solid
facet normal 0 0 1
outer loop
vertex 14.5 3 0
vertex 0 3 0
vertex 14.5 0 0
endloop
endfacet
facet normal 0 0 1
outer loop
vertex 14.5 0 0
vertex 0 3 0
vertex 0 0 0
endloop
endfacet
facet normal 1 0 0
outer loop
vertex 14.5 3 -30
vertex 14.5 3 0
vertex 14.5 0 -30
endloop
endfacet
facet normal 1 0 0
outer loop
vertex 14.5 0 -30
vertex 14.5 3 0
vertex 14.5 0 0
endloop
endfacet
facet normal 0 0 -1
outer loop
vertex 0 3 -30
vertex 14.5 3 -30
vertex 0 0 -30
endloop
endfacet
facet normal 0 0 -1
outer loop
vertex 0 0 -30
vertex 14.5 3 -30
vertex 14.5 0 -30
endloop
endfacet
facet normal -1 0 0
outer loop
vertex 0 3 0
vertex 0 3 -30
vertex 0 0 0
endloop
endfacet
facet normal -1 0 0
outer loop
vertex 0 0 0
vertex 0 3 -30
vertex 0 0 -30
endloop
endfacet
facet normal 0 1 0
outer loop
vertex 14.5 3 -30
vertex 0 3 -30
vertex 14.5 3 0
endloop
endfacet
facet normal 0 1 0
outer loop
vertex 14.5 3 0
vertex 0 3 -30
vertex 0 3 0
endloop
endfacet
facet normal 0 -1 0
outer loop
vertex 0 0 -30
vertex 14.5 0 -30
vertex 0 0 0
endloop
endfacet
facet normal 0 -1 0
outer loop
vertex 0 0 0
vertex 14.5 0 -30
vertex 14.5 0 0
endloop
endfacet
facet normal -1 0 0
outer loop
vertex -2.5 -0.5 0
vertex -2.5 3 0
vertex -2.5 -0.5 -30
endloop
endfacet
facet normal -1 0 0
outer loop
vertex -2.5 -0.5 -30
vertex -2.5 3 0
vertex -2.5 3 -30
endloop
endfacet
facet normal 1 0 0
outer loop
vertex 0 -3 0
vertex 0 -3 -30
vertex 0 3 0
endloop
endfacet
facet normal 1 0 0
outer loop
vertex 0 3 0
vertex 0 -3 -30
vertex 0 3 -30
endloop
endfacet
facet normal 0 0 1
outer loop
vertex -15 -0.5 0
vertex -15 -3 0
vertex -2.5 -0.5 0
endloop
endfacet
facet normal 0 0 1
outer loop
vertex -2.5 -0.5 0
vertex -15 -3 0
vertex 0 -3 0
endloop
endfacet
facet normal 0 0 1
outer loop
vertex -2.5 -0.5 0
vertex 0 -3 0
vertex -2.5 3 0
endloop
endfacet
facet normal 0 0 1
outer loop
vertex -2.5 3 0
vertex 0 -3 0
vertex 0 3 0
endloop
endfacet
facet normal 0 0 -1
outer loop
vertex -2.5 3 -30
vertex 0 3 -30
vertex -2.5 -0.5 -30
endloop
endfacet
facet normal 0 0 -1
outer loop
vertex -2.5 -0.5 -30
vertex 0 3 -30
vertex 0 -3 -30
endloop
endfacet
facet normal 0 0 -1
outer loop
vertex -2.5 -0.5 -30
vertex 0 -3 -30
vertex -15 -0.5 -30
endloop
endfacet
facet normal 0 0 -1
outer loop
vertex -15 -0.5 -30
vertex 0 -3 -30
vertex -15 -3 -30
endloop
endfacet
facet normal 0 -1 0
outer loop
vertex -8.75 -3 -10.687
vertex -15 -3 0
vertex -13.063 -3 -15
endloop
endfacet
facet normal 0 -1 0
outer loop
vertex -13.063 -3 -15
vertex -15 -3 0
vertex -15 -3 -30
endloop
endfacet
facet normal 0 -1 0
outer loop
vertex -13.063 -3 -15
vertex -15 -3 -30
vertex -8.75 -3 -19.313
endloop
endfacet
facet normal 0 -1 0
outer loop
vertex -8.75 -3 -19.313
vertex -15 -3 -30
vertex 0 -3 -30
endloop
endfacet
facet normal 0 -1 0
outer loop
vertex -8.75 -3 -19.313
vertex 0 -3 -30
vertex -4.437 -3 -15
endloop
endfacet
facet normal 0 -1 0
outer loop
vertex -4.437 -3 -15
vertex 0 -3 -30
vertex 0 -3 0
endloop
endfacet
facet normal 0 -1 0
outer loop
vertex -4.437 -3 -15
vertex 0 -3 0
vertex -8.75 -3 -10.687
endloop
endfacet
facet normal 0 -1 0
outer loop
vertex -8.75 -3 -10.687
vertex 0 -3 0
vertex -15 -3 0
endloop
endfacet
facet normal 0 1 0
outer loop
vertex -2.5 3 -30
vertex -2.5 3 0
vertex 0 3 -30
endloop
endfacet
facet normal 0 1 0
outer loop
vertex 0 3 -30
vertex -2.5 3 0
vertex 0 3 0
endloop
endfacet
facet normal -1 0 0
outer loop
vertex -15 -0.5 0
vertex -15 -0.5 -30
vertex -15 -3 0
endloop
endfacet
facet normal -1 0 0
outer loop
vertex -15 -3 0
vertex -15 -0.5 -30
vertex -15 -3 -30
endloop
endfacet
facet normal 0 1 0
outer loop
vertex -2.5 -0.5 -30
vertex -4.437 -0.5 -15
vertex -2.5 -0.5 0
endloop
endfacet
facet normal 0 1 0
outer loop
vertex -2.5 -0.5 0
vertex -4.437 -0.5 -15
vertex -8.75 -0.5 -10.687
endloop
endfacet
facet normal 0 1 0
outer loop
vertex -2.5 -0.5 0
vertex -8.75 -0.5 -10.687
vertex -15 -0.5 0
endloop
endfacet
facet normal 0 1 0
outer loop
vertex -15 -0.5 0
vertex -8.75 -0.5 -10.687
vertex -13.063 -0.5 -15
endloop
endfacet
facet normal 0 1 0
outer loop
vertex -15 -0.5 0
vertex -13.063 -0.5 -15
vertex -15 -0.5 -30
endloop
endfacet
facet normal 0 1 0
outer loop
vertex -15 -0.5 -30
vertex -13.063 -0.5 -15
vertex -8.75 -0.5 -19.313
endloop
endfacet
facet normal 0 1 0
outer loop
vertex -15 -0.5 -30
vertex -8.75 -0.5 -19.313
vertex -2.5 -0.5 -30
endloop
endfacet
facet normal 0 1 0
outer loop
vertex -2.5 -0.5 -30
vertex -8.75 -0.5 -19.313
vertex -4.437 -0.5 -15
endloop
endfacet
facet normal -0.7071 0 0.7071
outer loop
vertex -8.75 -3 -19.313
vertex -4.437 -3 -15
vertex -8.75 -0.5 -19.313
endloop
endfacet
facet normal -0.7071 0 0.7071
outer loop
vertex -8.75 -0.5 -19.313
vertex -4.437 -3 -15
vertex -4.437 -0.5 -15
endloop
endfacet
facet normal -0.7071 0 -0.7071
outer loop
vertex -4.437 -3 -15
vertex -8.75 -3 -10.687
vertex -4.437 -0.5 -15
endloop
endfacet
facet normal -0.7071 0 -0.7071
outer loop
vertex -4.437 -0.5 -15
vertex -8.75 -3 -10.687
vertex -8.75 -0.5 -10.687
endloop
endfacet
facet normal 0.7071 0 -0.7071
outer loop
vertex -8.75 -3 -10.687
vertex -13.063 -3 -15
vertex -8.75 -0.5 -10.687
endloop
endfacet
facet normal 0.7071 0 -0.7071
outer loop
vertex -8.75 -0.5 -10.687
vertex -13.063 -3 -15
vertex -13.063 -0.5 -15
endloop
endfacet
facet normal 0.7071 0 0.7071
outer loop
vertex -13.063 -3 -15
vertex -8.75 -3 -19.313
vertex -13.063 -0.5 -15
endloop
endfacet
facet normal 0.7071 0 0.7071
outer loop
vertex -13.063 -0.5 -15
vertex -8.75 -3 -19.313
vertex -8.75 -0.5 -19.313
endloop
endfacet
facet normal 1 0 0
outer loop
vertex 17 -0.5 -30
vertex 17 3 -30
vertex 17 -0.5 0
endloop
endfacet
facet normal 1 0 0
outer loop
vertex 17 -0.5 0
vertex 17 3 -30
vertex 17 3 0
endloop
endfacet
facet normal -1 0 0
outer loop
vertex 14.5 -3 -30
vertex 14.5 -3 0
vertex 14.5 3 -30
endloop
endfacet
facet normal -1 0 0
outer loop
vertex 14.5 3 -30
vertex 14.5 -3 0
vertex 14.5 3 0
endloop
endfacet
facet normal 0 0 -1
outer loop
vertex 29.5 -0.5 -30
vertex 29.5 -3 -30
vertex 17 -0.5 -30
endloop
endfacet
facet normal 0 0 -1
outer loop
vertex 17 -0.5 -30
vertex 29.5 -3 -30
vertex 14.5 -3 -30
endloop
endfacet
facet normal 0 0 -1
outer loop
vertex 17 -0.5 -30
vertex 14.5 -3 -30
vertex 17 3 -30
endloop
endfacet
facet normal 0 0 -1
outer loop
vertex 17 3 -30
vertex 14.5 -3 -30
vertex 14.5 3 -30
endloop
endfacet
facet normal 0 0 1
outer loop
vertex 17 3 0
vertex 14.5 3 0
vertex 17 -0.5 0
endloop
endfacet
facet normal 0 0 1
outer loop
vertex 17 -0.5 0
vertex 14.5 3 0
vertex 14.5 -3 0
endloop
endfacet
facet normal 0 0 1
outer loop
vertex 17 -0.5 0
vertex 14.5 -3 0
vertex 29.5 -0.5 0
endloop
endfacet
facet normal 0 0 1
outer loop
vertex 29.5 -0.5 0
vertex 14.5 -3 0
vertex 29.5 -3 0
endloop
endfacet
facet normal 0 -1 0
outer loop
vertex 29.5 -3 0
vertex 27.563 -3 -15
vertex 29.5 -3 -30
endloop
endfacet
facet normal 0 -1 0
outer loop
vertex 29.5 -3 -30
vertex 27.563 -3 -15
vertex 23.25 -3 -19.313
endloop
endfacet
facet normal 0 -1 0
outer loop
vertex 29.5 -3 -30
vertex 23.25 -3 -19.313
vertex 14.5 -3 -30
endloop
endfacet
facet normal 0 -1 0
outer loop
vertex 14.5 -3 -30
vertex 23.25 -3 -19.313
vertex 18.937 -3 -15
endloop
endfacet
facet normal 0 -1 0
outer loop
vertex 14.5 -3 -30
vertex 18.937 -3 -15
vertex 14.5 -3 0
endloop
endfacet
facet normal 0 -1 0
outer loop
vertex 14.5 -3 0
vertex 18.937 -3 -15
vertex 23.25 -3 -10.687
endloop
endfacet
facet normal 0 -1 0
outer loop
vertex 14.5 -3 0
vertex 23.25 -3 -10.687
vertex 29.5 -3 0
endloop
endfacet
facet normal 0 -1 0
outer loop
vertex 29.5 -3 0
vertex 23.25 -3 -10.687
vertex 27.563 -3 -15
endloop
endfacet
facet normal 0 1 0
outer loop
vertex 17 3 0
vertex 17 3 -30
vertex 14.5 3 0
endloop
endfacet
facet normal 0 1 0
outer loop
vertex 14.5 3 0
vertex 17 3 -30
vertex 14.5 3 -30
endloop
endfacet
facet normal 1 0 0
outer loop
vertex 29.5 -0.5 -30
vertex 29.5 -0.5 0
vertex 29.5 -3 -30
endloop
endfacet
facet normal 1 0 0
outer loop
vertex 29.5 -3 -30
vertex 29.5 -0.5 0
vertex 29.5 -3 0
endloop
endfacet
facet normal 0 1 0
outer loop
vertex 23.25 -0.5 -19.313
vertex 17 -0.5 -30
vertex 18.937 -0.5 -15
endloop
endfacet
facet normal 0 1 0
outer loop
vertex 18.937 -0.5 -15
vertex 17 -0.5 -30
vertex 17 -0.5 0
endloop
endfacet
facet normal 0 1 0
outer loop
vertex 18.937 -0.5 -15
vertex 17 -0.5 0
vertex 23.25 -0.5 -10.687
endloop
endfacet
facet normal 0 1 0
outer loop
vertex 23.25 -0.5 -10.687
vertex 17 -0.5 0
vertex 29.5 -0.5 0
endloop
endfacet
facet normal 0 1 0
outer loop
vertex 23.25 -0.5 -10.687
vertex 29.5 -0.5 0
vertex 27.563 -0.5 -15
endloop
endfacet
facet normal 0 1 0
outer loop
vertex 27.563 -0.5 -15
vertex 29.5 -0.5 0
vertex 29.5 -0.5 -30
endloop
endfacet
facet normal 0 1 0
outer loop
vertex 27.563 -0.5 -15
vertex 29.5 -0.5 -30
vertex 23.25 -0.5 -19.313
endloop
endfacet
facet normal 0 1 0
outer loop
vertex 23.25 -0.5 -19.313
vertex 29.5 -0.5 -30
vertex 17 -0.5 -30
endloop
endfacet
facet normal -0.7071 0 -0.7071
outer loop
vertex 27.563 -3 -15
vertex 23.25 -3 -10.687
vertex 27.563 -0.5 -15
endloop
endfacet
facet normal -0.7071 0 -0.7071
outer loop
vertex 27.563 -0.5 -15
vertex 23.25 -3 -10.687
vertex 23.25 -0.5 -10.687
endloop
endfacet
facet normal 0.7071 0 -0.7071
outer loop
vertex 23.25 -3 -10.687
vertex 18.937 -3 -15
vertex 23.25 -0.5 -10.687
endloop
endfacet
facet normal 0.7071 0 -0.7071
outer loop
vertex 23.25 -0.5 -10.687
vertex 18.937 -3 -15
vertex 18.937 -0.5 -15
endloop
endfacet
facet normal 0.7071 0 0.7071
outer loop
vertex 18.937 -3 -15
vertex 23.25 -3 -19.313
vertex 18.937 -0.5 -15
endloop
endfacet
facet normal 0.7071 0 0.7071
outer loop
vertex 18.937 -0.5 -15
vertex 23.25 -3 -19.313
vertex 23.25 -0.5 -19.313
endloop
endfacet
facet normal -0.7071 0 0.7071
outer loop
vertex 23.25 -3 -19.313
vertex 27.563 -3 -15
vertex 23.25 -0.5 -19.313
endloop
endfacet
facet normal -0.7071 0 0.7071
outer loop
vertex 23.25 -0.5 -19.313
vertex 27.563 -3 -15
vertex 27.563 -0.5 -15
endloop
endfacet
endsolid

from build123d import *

# Parameters (mm, degrees)
SKETCH1_W             = 14.5
SKETCH1_H             = 30
BOSS_EXTRUDE1_DEPTH   = 3
SKETCH2_W             = 2.5
SKETCH2_H             = 30
BOSS_EXTRUDE2_DEPTH   = 6
BOSS_EXTRUDE2_2_DEPTH = 6
SKETCH3_W             = 12.5
SKETCH3_H             = 30
BOSS_EXTRUDE3_DEPTH   = 2.5
CUT_EXTRUDE2_DEPTH    = 43.219663665


with BuildPart() as part:
    # Sketch1 → Boss-Extrude1 (new body)
    with BuildSketch(Plane(origin=(0, 0, 0), x_dir=(1, 0, 0), z_dir=(0, 1, 0))):
        with Locations((7.25, 15)):
            Rectangle(SKETCH1_W, SKETCH1_H)
    extrude(amount=BOSS_EXTRUDE1_DEPTH)


with BuildPart() as body_2:
    # Sketch2 → Boss-Extrude2 (new body)
    with BuildSketch(Plane(origin=(0, 3, 0), x_dir=(1, 0, 0), z_dir=(0, 1, 0))):
        with Locations((-1.25, 15)):
            Rectangle(SKETCH2_W, SKETCH2_H)
    extrude(amount=-BOSS_EXTRUDE2_DEPTH)



with BuildPart() as body_3:
    # Sketch2 → Boss-Extrude2 2 (new body)
    with BuildSketch(Plane(origin=(0, 3, 0), x_dir=(1, 0, 0), z_dir=(0, 1, 0))):
        with Locations((15.75, 15)):
            Rectangle(SKETCH2_W, SKETCH2_H)
    extrude(amount=-BOSS_EXTRUDE2_2_DEPTH)


with BuildPart() as body_2_1:
    add(body_2.part)

    add(body_3.part)  # Boss-Extrude3 merges body 3
    # Sketch3 → Boss-Extrude3 (add)
    with BuildSketch(Plane.XZ.offset(3)):
        with Locations((-8.75, -15)):
            Rectangle(SKETCH3_W, SKETCH3_H)
        with Locations((23.25, -15)):
            Rectangle(SKETCH3_W, SKETCH3_H)
    extrude(amount=-BOSS_EXTRUDE3_DEPTH)

    # Sketch4 → Cut-Extrude2 (cut, through all)
    with BuildSketch(Plane(origin=(0, -0.5, 0), x_dir=(1, 0, 0), z_dir=(0, 1, 0))):
        Polygon((-8.75, 19.313351365), (-13.063351365, 15), (-8.75, 10.686648635), (-4.436648635, 15), align=None)
        Polygon((23.25, 10.686648635), (18.936648635, 15), (23.25, 19.313351365), (27.563351365, 15), align=None)
    extrude(amount=-CUT_EXTRUDE2_DEPTH, mode=Mode.SUBTRACT)


solid = Compound([part.part, body_2_1.part])
